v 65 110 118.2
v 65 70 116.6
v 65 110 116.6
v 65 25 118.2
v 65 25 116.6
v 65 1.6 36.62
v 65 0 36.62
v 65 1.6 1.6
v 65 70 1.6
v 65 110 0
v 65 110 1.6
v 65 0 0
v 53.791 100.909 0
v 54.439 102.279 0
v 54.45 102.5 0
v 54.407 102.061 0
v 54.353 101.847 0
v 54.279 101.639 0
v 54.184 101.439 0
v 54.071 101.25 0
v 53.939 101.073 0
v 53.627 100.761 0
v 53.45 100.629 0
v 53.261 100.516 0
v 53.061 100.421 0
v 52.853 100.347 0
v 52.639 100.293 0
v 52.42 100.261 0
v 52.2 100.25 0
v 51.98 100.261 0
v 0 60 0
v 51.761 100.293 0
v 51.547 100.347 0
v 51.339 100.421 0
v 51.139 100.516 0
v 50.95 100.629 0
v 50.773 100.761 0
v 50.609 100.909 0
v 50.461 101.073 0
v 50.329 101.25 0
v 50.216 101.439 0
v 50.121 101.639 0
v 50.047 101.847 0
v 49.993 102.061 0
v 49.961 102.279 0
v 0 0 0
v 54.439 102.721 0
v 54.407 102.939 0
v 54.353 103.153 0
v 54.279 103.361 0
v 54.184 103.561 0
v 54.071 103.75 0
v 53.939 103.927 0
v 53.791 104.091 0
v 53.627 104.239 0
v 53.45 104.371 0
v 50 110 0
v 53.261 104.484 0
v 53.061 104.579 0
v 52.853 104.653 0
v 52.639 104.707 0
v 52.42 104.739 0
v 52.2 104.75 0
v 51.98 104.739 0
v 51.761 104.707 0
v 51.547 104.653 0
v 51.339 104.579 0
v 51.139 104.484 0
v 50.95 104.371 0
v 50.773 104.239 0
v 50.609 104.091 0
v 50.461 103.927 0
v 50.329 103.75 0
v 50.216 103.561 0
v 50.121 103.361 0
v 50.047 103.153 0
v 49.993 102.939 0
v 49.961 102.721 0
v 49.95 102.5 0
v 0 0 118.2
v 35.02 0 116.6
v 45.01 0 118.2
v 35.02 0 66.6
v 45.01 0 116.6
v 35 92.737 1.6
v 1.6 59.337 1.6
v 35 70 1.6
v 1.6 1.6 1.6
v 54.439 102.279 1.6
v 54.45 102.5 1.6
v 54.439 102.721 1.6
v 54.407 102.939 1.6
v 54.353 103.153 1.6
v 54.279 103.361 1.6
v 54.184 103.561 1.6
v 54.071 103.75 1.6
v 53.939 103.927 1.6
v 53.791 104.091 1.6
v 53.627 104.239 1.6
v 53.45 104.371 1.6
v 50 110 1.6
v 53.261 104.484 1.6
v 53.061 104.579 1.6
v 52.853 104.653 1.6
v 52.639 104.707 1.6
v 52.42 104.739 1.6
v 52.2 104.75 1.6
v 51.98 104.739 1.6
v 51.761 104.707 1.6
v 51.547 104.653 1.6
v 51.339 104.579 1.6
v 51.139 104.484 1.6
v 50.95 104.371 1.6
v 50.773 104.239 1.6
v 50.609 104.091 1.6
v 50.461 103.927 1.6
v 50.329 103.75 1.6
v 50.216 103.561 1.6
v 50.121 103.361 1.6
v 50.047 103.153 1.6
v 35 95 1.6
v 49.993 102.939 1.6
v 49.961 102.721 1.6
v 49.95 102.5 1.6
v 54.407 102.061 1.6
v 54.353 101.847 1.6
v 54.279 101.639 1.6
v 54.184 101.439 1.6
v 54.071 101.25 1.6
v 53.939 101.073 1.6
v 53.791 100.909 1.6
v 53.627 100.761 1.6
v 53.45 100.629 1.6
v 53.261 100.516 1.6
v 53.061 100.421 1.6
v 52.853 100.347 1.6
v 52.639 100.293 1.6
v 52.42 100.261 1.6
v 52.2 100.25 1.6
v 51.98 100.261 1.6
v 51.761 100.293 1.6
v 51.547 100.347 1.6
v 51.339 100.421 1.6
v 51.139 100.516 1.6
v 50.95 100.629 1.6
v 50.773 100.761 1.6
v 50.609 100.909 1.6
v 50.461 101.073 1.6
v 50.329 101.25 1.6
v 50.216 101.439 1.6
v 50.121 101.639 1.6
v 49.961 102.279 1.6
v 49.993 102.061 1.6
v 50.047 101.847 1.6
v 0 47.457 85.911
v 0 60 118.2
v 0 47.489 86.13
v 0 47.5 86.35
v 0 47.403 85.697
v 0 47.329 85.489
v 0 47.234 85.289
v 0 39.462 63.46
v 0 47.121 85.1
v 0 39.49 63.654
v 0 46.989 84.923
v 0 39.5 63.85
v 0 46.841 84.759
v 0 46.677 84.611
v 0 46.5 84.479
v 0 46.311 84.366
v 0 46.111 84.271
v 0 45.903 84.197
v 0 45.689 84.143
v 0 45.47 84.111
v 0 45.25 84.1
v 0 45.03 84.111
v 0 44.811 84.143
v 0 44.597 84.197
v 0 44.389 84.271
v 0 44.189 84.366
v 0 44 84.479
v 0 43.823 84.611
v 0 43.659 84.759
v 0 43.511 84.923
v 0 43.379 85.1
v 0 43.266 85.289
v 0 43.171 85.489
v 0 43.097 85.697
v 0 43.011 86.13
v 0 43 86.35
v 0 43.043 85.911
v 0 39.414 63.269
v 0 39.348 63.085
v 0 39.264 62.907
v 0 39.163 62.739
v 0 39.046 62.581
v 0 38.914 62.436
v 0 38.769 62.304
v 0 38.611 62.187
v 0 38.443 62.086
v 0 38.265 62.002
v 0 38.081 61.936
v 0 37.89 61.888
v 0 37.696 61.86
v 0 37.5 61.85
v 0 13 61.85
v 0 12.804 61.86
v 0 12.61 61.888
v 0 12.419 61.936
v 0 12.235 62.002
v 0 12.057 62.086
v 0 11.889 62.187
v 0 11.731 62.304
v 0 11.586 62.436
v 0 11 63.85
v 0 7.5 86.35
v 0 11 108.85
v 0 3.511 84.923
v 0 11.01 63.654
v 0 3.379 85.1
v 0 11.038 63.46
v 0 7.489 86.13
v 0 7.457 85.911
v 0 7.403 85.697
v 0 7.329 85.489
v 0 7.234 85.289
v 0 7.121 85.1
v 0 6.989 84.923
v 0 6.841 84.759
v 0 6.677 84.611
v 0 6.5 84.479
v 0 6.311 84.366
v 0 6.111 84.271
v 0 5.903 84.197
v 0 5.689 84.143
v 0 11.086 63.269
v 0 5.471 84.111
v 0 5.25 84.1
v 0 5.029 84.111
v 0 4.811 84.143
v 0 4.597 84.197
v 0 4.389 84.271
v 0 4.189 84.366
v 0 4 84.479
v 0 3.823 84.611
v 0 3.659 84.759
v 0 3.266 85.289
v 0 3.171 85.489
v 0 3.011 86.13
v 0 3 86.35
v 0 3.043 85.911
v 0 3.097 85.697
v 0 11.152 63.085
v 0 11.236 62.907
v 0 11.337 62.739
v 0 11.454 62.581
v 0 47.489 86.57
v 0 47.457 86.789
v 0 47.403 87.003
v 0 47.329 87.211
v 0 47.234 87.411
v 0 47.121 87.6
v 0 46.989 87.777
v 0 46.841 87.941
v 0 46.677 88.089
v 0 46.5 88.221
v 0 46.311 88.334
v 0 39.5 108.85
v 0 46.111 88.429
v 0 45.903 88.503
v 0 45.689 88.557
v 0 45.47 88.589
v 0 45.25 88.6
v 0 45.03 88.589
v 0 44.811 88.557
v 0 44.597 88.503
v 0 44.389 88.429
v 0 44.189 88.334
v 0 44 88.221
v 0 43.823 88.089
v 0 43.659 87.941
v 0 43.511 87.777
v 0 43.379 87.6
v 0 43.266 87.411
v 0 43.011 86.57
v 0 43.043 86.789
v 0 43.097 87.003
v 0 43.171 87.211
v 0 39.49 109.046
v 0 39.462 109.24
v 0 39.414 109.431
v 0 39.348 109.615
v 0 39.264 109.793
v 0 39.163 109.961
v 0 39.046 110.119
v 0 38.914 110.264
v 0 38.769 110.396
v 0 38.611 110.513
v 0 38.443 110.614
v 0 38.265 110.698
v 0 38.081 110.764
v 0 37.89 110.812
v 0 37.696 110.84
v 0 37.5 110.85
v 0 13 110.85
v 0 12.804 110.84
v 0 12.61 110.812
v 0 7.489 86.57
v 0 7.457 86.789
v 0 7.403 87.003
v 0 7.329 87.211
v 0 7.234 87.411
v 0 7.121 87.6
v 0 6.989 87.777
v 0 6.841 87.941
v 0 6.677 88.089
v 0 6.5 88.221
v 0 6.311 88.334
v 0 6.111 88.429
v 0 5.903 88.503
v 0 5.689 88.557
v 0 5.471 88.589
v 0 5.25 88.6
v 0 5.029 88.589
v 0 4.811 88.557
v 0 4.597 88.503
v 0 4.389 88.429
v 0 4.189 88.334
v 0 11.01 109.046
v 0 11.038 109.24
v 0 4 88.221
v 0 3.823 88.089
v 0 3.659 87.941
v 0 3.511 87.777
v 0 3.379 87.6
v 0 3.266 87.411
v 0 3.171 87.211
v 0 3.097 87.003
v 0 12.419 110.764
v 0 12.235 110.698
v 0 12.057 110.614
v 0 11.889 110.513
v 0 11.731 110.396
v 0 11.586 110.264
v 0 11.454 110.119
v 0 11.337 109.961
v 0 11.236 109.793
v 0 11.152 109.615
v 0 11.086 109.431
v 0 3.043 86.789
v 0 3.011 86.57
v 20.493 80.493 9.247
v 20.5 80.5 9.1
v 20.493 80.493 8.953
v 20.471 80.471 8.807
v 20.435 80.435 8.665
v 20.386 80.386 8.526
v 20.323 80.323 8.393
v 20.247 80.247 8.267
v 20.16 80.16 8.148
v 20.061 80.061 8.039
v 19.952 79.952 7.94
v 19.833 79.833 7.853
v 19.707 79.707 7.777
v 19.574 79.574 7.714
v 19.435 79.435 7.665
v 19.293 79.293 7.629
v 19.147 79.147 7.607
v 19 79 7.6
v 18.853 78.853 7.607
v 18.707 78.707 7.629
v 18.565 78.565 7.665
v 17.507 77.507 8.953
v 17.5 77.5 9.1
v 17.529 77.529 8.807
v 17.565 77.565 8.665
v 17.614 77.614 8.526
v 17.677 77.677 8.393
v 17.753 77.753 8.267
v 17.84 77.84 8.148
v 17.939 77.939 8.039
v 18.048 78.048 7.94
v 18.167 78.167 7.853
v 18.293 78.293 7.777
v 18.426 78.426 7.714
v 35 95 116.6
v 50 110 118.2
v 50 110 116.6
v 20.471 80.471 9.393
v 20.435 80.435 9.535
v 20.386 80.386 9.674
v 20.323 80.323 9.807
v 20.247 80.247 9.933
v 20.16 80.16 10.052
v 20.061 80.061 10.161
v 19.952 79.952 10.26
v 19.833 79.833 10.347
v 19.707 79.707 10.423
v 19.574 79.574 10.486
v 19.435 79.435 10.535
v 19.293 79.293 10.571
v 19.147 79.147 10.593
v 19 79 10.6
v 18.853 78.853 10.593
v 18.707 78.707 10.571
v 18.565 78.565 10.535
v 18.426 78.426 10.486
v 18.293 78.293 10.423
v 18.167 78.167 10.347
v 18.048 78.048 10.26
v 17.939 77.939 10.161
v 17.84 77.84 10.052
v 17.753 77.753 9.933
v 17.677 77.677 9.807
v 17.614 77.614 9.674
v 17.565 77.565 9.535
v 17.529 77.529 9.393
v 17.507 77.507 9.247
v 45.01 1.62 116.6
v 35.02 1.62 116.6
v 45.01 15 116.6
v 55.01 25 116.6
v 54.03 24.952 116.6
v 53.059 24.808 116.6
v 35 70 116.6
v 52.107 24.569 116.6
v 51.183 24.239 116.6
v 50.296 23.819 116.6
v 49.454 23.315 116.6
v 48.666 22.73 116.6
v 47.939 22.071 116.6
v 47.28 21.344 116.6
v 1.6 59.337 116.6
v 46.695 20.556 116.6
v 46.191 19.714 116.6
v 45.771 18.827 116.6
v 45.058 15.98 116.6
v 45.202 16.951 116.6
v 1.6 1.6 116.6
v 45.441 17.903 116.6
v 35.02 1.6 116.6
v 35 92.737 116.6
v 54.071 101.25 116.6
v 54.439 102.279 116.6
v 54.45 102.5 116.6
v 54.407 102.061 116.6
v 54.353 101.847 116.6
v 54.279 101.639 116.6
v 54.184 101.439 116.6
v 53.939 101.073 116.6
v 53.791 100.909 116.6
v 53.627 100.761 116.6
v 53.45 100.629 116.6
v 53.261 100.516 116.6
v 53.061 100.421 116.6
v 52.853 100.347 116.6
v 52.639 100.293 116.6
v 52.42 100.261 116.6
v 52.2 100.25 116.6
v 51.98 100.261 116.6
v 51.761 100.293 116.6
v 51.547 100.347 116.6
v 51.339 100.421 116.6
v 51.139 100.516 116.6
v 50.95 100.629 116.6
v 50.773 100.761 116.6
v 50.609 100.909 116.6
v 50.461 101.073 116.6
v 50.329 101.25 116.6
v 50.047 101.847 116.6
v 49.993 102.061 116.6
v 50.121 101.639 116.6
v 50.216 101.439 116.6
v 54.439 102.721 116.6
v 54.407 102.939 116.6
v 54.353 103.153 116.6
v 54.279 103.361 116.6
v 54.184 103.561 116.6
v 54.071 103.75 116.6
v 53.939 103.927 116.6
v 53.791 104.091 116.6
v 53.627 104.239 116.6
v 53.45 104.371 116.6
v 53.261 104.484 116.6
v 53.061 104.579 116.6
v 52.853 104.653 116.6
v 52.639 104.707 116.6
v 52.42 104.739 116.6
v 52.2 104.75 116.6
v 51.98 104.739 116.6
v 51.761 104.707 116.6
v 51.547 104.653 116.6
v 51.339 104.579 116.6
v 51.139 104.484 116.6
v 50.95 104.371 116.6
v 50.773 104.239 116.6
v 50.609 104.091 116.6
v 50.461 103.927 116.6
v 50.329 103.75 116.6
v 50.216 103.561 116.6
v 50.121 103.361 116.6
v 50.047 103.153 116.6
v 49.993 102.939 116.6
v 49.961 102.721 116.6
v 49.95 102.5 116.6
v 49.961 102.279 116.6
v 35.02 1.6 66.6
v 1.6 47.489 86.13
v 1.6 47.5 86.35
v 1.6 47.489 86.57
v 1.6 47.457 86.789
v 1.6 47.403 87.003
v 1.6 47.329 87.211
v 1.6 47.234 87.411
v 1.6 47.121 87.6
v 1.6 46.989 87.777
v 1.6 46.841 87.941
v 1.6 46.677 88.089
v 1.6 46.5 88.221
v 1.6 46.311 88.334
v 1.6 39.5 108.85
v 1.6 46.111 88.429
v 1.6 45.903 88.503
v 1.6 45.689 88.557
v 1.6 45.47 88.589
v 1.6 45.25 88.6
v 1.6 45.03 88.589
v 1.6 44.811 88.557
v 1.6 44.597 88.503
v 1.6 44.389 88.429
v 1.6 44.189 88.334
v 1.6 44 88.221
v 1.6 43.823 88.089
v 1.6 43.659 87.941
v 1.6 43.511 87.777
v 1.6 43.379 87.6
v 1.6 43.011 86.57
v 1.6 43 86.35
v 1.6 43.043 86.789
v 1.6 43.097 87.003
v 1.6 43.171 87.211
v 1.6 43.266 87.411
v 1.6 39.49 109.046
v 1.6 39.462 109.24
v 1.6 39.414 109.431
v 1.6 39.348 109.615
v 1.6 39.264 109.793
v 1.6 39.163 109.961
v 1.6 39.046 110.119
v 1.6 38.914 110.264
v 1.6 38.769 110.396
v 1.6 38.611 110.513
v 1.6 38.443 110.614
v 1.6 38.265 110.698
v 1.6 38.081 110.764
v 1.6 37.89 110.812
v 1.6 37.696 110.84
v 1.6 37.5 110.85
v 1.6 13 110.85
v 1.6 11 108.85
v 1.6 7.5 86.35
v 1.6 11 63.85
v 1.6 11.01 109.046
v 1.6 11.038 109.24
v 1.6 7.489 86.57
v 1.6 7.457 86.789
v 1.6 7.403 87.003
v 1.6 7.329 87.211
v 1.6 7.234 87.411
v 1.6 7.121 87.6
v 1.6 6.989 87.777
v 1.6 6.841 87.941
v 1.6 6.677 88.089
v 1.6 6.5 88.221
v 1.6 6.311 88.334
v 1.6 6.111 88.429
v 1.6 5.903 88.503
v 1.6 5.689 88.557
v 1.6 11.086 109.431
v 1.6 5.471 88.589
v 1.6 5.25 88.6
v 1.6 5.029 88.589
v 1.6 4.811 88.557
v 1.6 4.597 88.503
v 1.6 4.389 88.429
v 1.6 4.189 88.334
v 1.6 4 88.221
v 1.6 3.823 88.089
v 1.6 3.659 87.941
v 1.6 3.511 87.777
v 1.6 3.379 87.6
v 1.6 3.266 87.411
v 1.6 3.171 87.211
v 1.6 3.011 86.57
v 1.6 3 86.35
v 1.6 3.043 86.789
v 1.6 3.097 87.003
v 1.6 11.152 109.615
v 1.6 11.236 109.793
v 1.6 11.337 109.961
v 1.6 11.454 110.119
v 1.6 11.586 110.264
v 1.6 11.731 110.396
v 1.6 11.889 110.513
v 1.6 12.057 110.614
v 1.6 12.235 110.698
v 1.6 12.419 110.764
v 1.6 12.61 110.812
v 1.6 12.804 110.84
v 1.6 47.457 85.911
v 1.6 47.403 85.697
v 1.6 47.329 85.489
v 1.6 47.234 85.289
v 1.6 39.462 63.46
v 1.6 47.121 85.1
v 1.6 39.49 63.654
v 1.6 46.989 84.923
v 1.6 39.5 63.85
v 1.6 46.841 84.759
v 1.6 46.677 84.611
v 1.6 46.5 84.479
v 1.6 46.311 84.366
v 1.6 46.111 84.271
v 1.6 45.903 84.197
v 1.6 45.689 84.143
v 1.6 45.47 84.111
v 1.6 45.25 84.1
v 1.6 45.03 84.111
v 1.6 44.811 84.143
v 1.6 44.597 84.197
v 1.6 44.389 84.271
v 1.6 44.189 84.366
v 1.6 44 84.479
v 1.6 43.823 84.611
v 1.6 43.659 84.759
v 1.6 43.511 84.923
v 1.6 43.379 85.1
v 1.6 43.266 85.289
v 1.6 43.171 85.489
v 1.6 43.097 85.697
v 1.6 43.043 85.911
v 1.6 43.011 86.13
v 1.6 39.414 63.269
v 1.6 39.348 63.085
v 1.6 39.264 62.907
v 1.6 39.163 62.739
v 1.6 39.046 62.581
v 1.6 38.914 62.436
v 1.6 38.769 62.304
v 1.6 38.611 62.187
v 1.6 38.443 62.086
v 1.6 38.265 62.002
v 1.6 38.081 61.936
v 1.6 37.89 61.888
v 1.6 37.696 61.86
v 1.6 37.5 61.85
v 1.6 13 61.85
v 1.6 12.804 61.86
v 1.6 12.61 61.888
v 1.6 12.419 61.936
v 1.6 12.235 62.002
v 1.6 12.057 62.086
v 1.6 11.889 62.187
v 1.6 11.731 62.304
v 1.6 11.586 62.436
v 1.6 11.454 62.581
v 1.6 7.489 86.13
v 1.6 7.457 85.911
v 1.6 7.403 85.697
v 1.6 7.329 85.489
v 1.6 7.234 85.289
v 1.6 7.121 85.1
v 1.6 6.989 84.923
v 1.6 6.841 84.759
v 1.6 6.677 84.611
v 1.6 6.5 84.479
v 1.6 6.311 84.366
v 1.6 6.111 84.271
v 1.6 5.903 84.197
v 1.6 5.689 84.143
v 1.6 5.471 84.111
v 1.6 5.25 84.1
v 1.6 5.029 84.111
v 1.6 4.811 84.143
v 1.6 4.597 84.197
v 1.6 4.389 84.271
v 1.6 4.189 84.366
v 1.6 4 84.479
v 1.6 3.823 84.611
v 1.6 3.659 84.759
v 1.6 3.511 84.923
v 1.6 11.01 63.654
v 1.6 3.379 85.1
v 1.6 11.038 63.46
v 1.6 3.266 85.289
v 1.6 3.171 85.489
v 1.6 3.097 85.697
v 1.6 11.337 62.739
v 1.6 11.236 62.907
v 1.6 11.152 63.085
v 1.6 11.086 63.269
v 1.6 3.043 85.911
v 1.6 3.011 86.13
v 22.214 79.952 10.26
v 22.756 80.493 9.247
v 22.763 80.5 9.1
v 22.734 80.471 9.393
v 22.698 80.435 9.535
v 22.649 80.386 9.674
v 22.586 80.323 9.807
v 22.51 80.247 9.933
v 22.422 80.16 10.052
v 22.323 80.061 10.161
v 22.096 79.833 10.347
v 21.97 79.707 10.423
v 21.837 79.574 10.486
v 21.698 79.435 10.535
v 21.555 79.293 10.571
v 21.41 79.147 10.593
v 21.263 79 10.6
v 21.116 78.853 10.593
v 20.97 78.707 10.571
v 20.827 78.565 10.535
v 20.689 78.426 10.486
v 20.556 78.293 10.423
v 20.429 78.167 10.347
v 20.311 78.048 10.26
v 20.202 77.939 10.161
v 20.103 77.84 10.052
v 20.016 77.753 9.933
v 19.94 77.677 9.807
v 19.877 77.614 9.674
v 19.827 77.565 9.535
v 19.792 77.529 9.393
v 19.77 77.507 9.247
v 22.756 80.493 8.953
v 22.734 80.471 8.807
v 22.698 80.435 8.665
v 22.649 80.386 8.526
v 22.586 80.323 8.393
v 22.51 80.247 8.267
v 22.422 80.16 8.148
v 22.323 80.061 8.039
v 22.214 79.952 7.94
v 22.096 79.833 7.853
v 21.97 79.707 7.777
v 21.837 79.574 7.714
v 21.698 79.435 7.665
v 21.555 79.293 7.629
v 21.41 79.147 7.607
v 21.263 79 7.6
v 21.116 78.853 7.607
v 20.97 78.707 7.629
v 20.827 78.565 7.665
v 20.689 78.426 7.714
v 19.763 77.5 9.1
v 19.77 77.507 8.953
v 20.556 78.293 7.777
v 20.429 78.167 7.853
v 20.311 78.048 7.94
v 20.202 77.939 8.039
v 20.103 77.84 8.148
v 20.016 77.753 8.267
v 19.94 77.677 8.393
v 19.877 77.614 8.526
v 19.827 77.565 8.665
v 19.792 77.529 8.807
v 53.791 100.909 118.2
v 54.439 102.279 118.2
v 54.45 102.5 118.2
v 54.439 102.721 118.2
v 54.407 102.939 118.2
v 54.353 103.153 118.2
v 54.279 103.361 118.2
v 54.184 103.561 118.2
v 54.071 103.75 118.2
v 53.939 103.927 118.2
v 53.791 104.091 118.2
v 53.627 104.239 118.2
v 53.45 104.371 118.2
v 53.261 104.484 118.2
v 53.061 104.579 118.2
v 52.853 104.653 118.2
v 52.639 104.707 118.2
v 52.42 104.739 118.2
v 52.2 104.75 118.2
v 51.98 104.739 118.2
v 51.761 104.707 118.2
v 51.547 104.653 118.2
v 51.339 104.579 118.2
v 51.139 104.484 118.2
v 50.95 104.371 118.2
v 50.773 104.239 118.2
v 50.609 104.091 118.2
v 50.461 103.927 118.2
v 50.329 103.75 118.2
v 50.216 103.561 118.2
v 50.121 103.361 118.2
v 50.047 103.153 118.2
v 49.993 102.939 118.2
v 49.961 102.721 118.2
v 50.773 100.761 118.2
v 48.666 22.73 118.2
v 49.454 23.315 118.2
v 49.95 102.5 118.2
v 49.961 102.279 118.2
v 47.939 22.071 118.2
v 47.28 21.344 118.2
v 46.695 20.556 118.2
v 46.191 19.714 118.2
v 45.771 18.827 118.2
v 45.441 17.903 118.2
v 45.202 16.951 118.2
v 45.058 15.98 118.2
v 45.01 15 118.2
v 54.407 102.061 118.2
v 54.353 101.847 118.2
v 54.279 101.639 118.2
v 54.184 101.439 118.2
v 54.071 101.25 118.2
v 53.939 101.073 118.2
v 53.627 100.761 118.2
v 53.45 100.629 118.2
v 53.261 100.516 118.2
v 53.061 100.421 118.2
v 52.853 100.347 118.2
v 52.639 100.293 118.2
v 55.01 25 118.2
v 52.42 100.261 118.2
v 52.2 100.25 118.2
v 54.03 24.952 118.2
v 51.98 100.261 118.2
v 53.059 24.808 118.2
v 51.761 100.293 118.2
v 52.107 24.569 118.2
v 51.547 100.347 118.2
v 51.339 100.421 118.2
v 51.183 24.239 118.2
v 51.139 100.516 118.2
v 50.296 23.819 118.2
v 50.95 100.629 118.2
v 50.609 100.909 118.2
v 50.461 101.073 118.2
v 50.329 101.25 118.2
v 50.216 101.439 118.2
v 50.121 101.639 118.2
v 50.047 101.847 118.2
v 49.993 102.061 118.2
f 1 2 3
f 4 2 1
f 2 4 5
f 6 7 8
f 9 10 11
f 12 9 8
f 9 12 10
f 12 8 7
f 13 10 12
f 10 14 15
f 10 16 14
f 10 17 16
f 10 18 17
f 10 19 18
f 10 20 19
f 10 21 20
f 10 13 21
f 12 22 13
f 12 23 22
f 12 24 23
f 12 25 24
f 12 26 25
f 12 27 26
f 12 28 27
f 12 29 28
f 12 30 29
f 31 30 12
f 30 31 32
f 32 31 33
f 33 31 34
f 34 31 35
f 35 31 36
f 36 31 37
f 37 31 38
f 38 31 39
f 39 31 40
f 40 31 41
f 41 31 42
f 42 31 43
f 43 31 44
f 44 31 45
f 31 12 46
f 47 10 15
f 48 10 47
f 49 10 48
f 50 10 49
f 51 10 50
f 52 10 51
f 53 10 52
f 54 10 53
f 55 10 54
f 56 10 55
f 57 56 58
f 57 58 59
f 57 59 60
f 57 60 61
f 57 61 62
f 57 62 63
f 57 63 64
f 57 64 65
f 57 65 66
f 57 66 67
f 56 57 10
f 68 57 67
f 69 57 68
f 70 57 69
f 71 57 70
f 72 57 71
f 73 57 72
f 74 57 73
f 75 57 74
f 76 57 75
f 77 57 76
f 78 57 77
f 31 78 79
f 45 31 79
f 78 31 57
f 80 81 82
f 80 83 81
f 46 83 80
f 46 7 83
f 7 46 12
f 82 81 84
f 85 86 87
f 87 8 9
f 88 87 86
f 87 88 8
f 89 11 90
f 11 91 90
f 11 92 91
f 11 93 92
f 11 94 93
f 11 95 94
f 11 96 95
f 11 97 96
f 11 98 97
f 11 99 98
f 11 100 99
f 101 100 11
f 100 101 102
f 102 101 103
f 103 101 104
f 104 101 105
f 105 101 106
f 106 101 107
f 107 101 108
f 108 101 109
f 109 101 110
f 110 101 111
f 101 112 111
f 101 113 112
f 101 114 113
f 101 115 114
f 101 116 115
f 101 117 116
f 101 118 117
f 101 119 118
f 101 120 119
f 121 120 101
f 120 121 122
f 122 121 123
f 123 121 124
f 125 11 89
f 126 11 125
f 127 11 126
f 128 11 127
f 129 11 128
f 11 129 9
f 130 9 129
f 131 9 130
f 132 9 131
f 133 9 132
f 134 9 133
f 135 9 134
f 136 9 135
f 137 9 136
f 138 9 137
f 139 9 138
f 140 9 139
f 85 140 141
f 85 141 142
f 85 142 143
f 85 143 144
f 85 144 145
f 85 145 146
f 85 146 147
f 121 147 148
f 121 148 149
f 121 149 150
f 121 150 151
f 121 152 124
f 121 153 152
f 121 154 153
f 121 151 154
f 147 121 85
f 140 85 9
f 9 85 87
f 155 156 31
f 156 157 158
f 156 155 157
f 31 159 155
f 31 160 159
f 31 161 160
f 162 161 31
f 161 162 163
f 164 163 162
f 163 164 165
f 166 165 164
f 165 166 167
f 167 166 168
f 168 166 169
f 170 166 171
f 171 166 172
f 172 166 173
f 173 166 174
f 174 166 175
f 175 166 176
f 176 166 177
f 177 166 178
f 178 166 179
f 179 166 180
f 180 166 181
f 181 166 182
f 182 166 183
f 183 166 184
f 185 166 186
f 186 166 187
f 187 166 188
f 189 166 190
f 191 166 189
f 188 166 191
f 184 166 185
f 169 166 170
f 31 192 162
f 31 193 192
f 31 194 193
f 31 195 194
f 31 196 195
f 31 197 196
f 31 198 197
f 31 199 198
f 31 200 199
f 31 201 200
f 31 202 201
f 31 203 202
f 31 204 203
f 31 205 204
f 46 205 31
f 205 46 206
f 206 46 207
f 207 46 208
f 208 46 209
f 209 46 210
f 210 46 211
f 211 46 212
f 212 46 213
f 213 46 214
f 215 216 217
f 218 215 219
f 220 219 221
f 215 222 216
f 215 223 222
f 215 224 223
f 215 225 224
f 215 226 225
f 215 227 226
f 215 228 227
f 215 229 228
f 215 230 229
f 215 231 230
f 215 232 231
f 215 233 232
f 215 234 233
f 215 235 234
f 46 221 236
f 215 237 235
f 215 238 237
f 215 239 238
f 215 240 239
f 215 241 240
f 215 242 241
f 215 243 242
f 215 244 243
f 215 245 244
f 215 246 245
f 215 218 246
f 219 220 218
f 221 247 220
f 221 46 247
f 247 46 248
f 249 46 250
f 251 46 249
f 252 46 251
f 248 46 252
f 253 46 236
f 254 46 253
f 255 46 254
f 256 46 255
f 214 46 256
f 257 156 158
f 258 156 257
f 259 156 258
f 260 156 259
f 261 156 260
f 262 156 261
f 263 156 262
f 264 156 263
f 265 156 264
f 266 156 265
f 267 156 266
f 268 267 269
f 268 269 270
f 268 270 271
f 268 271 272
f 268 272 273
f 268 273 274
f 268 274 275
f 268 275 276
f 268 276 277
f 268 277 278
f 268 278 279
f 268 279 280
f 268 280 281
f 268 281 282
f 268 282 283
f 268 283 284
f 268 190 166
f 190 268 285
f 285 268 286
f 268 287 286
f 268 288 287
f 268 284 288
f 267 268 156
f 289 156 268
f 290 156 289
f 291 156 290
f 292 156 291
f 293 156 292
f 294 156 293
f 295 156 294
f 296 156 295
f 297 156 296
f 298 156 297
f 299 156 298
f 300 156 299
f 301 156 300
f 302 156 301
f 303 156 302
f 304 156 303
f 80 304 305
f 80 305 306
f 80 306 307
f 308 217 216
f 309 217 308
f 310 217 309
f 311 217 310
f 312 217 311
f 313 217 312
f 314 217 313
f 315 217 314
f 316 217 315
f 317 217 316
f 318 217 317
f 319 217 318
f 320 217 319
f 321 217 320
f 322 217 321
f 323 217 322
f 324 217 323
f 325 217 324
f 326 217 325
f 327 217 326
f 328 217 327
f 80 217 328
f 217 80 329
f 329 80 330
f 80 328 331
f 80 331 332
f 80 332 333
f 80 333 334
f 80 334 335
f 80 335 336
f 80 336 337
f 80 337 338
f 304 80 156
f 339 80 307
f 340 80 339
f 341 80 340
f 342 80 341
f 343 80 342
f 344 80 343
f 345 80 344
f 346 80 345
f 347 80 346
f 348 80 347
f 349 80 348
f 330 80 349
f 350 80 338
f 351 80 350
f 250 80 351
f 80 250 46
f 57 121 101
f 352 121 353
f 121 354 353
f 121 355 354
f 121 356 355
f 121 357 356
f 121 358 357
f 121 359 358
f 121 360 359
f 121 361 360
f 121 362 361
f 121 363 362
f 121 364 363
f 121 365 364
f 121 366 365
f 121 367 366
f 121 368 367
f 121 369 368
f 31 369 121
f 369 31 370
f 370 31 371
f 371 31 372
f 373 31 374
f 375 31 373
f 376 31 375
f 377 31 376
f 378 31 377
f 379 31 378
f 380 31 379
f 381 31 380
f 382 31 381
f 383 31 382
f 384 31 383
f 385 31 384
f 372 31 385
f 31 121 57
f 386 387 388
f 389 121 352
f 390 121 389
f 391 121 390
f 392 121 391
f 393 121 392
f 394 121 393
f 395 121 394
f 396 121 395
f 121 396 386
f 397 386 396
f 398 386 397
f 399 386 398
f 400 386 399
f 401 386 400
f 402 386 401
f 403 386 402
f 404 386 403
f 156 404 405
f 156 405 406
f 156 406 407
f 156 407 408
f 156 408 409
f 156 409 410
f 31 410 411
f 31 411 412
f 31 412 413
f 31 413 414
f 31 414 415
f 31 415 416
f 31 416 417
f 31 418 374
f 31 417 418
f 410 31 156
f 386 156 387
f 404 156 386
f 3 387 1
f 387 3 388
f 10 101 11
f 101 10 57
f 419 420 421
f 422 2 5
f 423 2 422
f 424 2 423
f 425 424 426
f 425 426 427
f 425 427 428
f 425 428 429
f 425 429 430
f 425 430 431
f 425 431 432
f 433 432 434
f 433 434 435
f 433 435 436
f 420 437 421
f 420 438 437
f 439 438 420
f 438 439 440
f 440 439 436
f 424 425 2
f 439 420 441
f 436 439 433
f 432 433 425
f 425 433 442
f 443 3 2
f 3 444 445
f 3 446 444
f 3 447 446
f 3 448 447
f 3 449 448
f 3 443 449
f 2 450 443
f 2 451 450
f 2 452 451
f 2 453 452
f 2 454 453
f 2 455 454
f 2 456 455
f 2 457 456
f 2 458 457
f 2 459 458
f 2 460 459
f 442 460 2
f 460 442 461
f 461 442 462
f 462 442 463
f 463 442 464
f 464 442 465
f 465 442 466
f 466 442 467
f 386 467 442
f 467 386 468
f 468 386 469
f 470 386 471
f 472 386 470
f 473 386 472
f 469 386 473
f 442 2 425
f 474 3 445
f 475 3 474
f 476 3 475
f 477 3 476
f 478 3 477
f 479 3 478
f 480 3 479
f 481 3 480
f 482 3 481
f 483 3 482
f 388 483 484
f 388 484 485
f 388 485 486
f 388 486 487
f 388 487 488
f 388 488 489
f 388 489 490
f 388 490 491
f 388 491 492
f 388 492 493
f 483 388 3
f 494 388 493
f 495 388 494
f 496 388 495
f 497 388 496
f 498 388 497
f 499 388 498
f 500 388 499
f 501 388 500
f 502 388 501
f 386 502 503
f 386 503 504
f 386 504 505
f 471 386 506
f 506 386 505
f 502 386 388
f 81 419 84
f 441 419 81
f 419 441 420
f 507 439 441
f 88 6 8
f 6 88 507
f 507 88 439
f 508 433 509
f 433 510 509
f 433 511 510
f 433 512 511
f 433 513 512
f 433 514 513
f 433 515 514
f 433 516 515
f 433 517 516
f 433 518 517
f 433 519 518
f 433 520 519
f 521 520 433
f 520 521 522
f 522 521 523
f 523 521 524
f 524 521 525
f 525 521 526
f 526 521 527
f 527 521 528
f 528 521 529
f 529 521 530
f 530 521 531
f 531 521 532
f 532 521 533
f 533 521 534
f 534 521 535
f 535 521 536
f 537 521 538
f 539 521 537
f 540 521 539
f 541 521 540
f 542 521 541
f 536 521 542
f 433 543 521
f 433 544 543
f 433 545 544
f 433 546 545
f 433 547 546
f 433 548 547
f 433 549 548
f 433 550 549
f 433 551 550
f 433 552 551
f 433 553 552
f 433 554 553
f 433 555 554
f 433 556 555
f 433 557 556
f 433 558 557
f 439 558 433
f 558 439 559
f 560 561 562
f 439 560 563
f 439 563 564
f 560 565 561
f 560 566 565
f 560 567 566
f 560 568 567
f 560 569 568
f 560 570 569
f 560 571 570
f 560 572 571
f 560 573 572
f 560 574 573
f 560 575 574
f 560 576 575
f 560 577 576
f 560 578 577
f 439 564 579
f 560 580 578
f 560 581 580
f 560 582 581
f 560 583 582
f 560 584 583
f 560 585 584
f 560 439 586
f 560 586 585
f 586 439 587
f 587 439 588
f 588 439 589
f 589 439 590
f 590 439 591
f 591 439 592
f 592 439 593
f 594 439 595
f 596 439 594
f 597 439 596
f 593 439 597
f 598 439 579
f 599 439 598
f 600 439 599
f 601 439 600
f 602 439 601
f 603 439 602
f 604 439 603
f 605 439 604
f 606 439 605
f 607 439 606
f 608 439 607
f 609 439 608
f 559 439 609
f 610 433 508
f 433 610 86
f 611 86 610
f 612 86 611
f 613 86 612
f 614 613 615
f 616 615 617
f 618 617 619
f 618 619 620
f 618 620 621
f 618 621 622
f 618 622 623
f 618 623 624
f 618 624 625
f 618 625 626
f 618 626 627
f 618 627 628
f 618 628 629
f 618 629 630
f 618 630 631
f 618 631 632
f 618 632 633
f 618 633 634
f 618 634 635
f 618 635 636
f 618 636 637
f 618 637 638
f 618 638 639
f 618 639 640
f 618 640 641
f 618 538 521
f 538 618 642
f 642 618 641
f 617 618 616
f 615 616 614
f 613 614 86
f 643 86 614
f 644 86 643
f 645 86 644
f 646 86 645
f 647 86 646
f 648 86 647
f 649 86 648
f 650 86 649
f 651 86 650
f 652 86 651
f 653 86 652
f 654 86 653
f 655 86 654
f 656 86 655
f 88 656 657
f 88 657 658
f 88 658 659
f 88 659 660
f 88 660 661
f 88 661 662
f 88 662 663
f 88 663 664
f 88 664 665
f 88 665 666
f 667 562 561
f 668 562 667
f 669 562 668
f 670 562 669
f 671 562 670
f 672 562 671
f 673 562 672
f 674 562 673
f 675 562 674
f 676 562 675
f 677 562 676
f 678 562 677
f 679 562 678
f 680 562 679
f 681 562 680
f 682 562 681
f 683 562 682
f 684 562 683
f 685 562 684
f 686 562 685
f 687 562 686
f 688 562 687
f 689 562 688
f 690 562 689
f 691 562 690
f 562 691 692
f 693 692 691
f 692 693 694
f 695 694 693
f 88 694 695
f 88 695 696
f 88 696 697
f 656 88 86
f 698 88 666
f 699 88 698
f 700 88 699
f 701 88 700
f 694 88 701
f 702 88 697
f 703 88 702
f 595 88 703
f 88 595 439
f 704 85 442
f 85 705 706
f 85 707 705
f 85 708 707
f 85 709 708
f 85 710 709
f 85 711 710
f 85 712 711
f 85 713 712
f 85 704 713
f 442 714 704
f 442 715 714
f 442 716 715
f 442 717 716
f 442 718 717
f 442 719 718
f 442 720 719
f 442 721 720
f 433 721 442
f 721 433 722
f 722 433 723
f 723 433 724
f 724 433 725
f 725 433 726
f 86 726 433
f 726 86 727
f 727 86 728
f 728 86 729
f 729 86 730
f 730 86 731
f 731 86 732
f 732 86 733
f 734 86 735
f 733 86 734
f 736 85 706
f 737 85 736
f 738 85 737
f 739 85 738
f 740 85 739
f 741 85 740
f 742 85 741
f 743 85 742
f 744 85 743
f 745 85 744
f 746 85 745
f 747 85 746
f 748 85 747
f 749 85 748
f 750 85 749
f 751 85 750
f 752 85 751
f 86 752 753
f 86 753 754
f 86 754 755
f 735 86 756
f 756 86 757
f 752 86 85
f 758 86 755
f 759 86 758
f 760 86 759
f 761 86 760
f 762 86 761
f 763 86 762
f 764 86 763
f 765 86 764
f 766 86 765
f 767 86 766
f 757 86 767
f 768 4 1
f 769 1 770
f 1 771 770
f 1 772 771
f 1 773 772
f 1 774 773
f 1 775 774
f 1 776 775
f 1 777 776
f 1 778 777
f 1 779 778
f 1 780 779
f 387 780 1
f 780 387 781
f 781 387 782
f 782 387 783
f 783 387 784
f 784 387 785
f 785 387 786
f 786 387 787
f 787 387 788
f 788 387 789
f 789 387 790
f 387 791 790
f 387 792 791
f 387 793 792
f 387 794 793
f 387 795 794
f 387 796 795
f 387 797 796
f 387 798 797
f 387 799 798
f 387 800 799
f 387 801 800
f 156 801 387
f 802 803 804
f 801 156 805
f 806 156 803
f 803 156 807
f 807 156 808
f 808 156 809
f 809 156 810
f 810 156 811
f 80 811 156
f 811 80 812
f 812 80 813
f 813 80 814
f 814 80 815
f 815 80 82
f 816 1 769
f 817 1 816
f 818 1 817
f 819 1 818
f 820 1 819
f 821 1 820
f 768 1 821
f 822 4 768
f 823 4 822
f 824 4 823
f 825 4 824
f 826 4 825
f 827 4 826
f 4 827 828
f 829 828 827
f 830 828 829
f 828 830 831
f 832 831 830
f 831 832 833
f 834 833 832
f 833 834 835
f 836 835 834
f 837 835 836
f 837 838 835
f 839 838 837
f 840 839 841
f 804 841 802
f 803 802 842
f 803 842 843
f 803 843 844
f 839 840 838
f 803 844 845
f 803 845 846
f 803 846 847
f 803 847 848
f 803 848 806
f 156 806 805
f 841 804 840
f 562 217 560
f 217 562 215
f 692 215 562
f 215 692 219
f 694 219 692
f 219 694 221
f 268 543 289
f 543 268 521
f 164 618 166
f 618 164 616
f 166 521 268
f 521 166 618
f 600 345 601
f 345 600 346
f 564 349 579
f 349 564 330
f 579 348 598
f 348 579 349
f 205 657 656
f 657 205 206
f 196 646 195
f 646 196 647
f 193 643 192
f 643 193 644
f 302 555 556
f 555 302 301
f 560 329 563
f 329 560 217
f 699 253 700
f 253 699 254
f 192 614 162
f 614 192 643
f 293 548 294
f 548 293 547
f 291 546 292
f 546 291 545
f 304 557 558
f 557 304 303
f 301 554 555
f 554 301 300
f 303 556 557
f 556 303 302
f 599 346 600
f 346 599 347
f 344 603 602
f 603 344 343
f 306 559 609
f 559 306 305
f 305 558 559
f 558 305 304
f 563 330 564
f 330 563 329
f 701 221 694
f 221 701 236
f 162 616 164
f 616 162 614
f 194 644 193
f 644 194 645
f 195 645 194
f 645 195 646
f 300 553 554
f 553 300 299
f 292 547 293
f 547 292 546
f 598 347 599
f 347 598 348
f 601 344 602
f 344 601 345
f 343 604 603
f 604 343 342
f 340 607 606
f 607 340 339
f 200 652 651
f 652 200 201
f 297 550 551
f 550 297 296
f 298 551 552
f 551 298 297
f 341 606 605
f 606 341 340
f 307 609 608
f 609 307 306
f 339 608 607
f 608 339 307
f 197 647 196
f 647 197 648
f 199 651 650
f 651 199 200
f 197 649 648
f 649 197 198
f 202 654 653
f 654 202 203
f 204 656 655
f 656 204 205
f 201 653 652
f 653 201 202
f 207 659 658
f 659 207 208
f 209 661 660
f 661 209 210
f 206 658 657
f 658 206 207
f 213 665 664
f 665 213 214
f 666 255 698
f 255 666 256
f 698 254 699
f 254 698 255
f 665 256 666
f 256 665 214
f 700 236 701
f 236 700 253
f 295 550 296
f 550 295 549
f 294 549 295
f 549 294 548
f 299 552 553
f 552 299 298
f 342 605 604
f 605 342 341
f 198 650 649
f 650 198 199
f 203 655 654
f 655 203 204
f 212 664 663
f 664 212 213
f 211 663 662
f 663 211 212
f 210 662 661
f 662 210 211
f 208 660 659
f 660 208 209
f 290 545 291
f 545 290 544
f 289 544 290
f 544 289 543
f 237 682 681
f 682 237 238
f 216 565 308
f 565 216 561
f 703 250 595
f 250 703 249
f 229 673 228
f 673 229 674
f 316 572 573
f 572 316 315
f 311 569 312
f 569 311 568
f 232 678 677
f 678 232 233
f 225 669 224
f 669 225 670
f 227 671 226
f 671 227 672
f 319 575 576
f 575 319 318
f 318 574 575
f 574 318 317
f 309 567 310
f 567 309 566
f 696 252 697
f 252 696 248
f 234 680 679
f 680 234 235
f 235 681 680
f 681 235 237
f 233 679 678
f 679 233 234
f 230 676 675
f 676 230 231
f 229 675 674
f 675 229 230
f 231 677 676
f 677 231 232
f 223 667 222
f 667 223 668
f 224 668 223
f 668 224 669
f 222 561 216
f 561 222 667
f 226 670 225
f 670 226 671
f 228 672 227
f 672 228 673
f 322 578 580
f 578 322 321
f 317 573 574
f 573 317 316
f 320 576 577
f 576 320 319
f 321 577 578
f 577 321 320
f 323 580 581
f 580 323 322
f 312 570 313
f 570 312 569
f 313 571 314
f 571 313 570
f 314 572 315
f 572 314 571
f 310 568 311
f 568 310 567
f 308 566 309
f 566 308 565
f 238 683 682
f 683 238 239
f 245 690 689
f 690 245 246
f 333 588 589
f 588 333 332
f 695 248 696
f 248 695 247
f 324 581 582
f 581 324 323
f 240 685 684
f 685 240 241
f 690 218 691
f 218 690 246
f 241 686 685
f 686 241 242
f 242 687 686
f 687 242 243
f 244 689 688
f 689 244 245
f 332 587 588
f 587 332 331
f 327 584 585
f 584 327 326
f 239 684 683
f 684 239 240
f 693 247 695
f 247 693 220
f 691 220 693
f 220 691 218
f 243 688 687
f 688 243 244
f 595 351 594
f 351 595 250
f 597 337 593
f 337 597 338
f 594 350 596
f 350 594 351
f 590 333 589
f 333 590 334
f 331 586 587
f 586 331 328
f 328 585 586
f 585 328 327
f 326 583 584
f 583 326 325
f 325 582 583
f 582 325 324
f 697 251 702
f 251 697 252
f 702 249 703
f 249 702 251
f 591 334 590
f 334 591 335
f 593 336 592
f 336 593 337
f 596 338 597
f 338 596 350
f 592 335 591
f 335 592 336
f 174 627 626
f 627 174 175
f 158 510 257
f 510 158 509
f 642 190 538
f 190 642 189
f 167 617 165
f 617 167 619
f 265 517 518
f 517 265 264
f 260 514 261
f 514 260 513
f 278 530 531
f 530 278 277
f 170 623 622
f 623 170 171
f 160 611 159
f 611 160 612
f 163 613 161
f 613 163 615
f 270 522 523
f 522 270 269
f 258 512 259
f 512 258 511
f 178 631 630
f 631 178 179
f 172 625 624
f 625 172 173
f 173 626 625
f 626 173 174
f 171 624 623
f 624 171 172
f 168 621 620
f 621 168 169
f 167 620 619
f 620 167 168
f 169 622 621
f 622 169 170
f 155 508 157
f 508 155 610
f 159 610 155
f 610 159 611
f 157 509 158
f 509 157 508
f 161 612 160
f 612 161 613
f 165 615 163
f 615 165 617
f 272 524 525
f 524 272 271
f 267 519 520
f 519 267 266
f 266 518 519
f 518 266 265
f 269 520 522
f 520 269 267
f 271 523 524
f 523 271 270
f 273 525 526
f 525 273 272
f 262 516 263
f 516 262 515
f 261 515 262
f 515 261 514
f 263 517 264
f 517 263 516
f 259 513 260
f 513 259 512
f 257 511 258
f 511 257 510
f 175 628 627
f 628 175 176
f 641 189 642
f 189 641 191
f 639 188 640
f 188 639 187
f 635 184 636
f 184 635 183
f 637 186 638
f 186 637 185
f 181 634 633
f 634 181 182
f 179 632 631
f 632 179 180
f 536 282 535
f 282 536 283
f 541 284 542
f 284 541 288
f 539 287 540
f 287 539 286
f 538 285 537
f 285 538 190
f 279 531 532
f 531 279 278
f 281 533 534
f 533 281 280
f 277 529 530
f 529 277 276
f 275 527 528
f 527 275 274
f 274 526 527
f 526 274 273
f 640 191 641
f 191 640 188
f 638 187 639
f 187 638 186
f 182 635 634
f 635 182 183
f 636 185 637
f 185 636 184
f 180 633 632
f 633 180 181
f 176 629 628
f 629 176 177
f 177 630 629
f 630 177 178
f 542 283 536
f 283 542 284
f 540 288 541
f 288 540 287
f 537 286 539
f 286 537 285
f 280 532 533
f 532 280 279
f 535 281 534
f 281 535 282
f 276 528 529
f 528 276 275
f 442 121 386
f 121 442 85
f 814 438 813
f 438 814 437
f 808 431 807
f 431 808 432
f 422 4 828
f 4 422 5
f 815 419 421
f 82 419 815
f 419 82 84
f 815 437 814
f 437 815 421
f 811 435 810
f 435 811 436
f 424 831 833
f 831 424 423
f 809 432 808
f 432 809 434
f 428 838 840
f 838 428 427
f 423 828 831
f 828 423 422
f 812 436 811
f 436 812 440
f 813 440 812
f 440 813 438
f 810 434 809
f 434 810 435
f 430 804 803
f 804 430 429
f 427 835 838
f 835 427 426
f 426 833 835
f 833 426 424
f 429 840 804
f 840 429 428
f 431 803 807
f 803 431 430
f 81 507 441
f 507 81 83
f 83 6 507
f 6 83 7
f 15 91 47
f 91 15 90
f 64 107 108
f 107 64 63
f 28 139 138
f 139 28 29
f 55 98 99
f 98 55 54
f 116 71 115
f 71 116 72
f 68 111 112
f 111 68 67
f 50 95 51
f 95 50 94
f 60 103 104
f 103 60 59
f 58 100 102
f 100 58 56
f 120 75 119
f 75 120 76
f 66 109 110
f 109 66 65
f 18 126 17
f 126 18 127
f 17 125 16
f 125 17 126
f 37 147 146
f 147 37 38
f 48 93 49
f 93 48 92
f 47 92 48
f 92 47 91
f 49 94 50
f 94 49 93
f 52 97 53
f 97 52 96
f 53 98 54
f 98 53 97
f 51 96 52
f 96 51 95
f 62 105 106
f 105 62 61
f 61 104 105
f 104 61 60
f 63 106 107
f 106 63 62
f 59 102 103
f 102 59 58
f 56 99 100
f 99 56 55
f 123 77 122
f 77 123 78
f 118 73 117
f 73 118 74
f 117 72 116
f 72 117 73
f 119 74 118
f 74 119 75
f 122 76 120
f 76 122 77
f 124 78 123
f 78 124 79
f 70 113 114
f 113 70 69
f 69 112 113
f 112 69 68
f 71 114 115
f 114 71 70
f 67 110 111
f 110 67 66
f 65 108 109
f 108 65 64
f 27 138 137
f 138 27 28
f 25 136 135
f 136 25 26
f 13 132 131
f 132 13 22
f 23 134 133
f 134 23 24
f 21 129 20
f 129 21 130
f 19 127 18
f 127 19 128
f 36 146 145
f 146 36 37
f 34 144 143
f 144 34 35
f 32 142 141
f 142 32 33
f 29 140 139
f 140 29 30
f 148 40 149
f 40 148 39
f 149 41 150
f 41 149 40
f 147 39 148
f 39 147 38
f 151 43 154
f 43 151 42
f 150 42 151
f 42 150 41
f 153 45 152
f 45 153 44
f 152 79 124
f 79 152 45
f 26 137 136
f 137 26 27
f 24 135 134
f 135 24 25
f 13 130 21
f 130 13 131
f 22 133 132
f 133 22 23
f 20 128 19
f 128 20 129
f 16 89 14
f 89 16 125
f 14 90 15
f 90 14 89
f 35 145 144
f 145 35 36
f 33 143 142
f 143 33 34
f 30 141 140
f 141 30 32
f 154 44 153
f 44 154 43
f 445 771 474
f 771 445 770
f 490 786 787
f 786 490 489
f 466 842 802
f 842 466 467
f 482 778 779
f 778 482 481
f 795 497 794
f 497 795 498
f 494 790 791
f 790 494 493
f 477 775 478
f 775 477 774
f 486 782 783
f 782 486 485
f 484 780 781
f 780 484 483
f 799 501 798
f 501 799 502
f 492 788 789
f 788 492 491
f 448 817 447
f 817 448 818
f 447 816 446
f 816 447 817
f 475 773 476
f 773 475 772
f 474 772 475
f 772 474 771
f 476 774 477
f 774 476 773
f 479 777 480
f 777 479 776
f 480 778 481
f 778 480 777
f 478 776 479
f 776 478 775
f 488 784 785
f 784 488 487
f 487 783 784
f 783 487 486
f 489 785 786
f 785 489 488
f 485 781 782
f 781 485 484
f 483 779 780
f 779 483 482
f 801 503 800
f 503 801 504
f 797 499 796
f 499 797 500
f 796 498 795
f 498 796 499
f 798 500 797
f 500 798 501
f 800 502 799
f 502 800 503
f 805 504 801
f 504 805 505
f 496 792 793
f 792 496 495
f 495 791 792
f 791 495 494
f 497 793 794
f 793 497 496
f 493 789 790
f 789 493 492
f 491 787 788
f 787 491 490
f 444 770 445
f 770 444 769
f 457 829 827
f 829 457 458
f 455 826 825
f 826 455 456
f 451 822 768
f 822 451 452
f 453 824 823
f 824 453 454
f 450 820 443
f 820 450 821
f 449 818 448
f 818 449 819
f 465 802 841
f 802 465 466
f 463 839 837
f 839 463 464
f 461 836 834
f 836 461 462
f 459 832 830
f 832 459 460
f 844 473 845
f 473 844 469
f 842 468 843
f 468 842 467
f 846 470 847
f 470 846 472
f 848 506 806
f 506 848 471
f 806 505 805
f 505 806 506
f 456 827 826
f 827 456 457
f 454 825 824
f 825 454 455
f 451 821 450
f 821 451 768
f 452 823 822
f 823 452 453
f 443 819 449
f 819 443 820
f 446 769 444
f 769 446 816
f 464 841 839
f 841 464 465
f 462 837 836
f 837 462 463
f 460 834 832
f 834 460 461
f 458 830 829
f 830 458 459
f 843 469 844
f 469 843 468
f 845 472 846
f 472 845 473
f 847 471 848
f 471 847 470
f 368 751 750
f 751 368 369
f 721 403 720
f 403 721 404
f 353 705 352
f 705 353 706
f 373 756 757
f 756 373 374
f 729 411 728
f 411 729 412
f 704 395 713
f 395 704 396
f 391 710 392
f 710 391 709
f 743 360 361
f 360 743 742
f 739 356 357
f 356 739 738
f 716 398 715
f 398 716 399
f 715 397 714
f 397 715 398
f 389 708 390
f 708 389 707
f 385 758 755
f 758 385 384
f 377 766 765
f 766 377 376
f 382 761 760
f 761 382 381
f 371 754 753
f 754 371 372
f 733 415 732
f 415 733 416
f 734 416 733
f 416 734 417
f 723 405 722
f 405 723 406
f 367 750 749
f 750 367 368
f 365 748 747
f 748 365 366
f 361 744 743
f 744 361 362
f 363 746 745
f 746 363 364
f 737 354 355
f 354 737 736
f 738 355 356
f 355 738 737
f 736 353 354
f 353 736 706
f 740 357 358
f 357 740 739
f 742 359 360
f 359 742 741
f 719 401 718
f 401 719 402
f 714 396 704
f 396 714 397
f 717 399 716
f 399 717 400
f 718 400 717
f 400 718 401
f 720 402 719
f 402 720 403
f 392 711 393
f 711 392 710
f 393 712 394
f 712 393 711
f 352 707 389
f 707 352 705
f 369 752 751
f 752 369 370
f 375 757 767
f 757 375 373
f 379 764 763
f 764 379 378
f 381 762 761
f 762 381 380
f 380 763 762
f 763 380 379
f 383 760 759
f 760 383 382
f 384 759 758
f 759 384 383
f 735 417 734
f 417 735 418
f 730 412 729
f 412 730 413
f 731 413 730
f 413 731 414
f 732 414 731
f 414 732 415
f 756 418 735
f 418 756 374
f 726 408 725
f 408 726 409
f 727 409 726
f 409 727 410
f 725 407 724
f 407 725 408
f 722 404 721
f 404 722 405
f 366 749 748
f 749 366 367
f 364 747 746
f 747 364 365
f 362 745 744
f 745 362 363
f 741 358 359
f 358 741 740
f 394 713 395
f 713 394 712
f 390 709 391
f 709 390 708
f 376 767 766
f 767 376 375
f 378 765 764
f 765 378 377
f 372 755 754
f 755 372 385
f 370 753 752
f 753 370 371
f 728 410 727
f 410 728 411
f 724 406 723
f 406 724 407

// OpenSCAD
/**
 * The angled wall is using a 45 degree overhang, making all 
 * the triangles needed for offset calculation etc. not only right
 * but also isosceles, which is easier to handle. It also happens 
 * to be the maximum most printers can print as an overhang without
 * supports.
 */
 
/* [Cover] */

wallThickness = 1.6;

coverStraightWidth = 15;
coverAngledWidth = 50;
coverWidth = coverStraightWidth + coverAngledWidth;

coverUpperHeight = 40;
coverLowerHeight = 70;
coverHeight = coverUpperHeight + coverLowerHeight;

/* [Cable Cutouts] */
sideCutoutWidth = 20;
sideCutoutHeight = 25;

bottomCutoutWidth = 30;
bottomCutoutStraightHeight = 50;
bottomCutoutAngledHeight = 30;
bottomCutoutHeight = bottomCutoutStraightHeight + bottomCutoutAngledHeight;

/* [C14 Connector] */

connectorWidth = 49;
connectorHeight = 28.5;
connectorHoleDiameter = 4.5;
connectorHoleSpacing = 40;
connectorExtrusionHeight = 3 * wallThickness;

/* [Power Supply] */
powerSupplyDepth = 115;
powerSupplyWidth = 30;
powerSupplyOverlapHeight = 40;

powerSupplyHoleDiameter = 4.5;
sideToScrewDistance = 32.5;
bottomToScrewDistance = 12.8;

/* [hidden] */

$fn = 64;

// To ensure a correct thickness of the angled wall, we need
// to offset the inner point a little bit. Math for the win!
innerAngleOffset = wallThickness - sqrt(2 * pow(wallThickness, 2));

// Points for the outer polygon
op1 = [0, 0];
op2 = [coverWidth, 0];
op3 = [coverWidth, coverHeight];
op4 = [coverAngledWidth, coverHeight];
op5 = [0, coverHeight - coverAngledWidth];

// Point for the inner polygon
ip1 = op1 + [wallThickness, wallThickness];
ip2 = op2 + [0.01, wallThickness];
ip3 = op3 - [-0.01, wallThickness];
ip4 = op4 - [innerAngleOffset, wallThickness];
ip5 = op5 + [wallThickness, innerAngleOffset];

// Points for the bottom cutout
bcp1 = [0, 0];
bcp2 = [bottomCutoutWidth, 0];
bcp3 = [bottomCutoutWidth, bottomCutoutHeight];
bcp4 = [0, bottomCutoutStraightHeight];

completedCover();

module completedCover() {
    difference() {
        part_3d_coverBody();
        
        // power supply cutout
        translate([coverWidth - powerSupplyWidth, 
                   coverHeight - powerSupplyOverlapHeight, 
                   wallThickness]) part_3d_powerSupplyDummy();
        
        // C14 connector cutout
        translate([-wallThickness, 
                   (coverHeight - coverAngledWidth) * 0.05, 
                    wallThickness + powerSupplyDepth * 0.95]) rotate([0, 90, 0]) sub_3d_c14Connector();
        
        // side cutout
        translate([coverWidth - sideCutoutWidth + 0.01, 0, wallThickness + powerSupplyDepth - 0.01]) sub_3d_sideCutout();
        
        // bottom cutout
        translate([coverWidth - bottomCutoutWidth + 0.02, 0, wallThickness + powerSupplyDepth]) rotate([270, 0, 0]) sub_3d_bottomCutout();

        // screw holes
        translate([coverWidth - bottomToScrewDistance, coverHeight - (coverUpperHeight - sideToScrewDistance), 0]) /*rotate([0, 90, 0])*/ cylinder(d = powerSupplyHoleDiameter, h = 3 * wallThickness);
        translate([coverWidth - bottomToScrewDistance, coverHeight - (coverUpperHeight - sideToScrewDistance), powerSupplyDepth]) /*rotate([0, 90, 0])*/ cylinder(d = powerSupplyHoleDiameter, h = 3 * wallThickness);
        
        // hole for LED
        translate([-10, coverLowerHeight + 9, wallThickness + 7.5]) rotate([0, 90, 0]) cylinder(d = 3, h = 100);
    }
}

/**
 * Assembles the cover body from two endplates and the main extrusion
 * inbetween. Cutouts for the connector and the power supply are added
 * in another module.
 */
module part_3d_coverBody() {
    sub_3d_endPlate();
    translate([0, 0, wallThickness]) sub_3d_mainExtrusion();
    translate([0, 0, wallThickness + powerSupplyDepth]) sub_3d_endPlate(); 
}

/**
 * Represents the lower part of the power supply that protrudes into the cover.
 * Used to create the neccessary cutout for the power supply.
 */
module part_3d_powerSupplyDummy() {
    cube([powerSupplyWidth + 0.01, powerSupplyOverlapHeight + 0.01, powerSupplyDepth]);
}

/**
 * The part that will be removed on the lower right hand side of the cover.
 */
module sub_3d_sideCutout() {
    hull() {
        translate([sideCutoutWidth / 2, sideCutoutHeight - sideCutoutWidth / 2, 0]) cylinder(d = sideCutoutWidth, h = 2 * wallThickness);
        translate([sideCutoutWidth - 1, 0, 0]) cube([1, sideCutoutHeight, 2 * wallThickness]);
        cube([sideCutoutWidth, 1, 2 * wallThickness]);
    }
}

/**
 * This is the extrusion of the outline of the cover. End plates are added
 * in another module, this is just the main profile.
 */
module sub_3d_mainExtrusion() {
    linear_extrude(height = powerSupplyDepth) sub_2d_outline();
}

/**
 * An extrusion of the outer polygon with a height equal to the wall thickness.
 */
module sub_3d_endPlate() {
    linear_extrude(height = wallThickness) sub_2d_outerPolygon();
}

/**
 * By subtracting the inner polygon from the outer one, this generates
 * the general lines required for the walls of the cover, which will 
 * then be extruded.
 */
module sub_2d_outline() {
    difference() {
        sub_2d_outerPolygon();
        sub_2d_innerPolygon();
    }
}

/**
 * Generates the outer polygon shape of the cover.
 */
module sub_2d_outerPolygon() {
    polygon(points = [op1, op2, op3, op4, op5]);
}

module sub_3d_bottomCutout() {
    linear_extrude(height = wallThickness + 0.02) sub_2d_bottomCutoutShape();
}


module sub_2d_bottomCutoutShape() {
    polygon(points = [bcp1, bcp2, bcp3, bcp4]);
}

/**
 * Generates the inner polygon shape of the cover. This has the same shape
 * as the outer polygon but is set inward by the wall thickness requested, except
 * on the right side (back side, this will face the power supply, hence there
 * is no wall there.
 */
module sub_2d_innerPolygon() {
    polygon(points = [ip1, ip2, ip3, ip4, ip5]);
}

/**
 * Represents the cutout for an IEC-60320 C14 connector with fuse and switch. Use this
 * as a difference with your solid body to produce a cutout.
 */
module sub_3d_c14Connector() {
    rounded = 2;
    translate([0, (connectorHoleSpacing + connectorHoleDiameter)/2 - connectorHeight/2, 0]) {
        translate([rounded, rounded, 0]) linear_extrude(height = connectorExtrusionHeight) offset(r = rounded) square([connectorWidth - rounded*2, connectorHeight - rounded*2]);
        translate([connectorWidth/2, (connectorHoleSpacing - connectorHeight)/-2, 0]) cylinder(d = connectorHoleDiameter, h = connectorExtrusionHeight);
        translate([connectorWidth/2, (connectorHoleSpacing + connectorHeight)/2, 0]) cylinder(d = connectorHoleDiameter, h = connectorExtrusionHeight);
    }
}
